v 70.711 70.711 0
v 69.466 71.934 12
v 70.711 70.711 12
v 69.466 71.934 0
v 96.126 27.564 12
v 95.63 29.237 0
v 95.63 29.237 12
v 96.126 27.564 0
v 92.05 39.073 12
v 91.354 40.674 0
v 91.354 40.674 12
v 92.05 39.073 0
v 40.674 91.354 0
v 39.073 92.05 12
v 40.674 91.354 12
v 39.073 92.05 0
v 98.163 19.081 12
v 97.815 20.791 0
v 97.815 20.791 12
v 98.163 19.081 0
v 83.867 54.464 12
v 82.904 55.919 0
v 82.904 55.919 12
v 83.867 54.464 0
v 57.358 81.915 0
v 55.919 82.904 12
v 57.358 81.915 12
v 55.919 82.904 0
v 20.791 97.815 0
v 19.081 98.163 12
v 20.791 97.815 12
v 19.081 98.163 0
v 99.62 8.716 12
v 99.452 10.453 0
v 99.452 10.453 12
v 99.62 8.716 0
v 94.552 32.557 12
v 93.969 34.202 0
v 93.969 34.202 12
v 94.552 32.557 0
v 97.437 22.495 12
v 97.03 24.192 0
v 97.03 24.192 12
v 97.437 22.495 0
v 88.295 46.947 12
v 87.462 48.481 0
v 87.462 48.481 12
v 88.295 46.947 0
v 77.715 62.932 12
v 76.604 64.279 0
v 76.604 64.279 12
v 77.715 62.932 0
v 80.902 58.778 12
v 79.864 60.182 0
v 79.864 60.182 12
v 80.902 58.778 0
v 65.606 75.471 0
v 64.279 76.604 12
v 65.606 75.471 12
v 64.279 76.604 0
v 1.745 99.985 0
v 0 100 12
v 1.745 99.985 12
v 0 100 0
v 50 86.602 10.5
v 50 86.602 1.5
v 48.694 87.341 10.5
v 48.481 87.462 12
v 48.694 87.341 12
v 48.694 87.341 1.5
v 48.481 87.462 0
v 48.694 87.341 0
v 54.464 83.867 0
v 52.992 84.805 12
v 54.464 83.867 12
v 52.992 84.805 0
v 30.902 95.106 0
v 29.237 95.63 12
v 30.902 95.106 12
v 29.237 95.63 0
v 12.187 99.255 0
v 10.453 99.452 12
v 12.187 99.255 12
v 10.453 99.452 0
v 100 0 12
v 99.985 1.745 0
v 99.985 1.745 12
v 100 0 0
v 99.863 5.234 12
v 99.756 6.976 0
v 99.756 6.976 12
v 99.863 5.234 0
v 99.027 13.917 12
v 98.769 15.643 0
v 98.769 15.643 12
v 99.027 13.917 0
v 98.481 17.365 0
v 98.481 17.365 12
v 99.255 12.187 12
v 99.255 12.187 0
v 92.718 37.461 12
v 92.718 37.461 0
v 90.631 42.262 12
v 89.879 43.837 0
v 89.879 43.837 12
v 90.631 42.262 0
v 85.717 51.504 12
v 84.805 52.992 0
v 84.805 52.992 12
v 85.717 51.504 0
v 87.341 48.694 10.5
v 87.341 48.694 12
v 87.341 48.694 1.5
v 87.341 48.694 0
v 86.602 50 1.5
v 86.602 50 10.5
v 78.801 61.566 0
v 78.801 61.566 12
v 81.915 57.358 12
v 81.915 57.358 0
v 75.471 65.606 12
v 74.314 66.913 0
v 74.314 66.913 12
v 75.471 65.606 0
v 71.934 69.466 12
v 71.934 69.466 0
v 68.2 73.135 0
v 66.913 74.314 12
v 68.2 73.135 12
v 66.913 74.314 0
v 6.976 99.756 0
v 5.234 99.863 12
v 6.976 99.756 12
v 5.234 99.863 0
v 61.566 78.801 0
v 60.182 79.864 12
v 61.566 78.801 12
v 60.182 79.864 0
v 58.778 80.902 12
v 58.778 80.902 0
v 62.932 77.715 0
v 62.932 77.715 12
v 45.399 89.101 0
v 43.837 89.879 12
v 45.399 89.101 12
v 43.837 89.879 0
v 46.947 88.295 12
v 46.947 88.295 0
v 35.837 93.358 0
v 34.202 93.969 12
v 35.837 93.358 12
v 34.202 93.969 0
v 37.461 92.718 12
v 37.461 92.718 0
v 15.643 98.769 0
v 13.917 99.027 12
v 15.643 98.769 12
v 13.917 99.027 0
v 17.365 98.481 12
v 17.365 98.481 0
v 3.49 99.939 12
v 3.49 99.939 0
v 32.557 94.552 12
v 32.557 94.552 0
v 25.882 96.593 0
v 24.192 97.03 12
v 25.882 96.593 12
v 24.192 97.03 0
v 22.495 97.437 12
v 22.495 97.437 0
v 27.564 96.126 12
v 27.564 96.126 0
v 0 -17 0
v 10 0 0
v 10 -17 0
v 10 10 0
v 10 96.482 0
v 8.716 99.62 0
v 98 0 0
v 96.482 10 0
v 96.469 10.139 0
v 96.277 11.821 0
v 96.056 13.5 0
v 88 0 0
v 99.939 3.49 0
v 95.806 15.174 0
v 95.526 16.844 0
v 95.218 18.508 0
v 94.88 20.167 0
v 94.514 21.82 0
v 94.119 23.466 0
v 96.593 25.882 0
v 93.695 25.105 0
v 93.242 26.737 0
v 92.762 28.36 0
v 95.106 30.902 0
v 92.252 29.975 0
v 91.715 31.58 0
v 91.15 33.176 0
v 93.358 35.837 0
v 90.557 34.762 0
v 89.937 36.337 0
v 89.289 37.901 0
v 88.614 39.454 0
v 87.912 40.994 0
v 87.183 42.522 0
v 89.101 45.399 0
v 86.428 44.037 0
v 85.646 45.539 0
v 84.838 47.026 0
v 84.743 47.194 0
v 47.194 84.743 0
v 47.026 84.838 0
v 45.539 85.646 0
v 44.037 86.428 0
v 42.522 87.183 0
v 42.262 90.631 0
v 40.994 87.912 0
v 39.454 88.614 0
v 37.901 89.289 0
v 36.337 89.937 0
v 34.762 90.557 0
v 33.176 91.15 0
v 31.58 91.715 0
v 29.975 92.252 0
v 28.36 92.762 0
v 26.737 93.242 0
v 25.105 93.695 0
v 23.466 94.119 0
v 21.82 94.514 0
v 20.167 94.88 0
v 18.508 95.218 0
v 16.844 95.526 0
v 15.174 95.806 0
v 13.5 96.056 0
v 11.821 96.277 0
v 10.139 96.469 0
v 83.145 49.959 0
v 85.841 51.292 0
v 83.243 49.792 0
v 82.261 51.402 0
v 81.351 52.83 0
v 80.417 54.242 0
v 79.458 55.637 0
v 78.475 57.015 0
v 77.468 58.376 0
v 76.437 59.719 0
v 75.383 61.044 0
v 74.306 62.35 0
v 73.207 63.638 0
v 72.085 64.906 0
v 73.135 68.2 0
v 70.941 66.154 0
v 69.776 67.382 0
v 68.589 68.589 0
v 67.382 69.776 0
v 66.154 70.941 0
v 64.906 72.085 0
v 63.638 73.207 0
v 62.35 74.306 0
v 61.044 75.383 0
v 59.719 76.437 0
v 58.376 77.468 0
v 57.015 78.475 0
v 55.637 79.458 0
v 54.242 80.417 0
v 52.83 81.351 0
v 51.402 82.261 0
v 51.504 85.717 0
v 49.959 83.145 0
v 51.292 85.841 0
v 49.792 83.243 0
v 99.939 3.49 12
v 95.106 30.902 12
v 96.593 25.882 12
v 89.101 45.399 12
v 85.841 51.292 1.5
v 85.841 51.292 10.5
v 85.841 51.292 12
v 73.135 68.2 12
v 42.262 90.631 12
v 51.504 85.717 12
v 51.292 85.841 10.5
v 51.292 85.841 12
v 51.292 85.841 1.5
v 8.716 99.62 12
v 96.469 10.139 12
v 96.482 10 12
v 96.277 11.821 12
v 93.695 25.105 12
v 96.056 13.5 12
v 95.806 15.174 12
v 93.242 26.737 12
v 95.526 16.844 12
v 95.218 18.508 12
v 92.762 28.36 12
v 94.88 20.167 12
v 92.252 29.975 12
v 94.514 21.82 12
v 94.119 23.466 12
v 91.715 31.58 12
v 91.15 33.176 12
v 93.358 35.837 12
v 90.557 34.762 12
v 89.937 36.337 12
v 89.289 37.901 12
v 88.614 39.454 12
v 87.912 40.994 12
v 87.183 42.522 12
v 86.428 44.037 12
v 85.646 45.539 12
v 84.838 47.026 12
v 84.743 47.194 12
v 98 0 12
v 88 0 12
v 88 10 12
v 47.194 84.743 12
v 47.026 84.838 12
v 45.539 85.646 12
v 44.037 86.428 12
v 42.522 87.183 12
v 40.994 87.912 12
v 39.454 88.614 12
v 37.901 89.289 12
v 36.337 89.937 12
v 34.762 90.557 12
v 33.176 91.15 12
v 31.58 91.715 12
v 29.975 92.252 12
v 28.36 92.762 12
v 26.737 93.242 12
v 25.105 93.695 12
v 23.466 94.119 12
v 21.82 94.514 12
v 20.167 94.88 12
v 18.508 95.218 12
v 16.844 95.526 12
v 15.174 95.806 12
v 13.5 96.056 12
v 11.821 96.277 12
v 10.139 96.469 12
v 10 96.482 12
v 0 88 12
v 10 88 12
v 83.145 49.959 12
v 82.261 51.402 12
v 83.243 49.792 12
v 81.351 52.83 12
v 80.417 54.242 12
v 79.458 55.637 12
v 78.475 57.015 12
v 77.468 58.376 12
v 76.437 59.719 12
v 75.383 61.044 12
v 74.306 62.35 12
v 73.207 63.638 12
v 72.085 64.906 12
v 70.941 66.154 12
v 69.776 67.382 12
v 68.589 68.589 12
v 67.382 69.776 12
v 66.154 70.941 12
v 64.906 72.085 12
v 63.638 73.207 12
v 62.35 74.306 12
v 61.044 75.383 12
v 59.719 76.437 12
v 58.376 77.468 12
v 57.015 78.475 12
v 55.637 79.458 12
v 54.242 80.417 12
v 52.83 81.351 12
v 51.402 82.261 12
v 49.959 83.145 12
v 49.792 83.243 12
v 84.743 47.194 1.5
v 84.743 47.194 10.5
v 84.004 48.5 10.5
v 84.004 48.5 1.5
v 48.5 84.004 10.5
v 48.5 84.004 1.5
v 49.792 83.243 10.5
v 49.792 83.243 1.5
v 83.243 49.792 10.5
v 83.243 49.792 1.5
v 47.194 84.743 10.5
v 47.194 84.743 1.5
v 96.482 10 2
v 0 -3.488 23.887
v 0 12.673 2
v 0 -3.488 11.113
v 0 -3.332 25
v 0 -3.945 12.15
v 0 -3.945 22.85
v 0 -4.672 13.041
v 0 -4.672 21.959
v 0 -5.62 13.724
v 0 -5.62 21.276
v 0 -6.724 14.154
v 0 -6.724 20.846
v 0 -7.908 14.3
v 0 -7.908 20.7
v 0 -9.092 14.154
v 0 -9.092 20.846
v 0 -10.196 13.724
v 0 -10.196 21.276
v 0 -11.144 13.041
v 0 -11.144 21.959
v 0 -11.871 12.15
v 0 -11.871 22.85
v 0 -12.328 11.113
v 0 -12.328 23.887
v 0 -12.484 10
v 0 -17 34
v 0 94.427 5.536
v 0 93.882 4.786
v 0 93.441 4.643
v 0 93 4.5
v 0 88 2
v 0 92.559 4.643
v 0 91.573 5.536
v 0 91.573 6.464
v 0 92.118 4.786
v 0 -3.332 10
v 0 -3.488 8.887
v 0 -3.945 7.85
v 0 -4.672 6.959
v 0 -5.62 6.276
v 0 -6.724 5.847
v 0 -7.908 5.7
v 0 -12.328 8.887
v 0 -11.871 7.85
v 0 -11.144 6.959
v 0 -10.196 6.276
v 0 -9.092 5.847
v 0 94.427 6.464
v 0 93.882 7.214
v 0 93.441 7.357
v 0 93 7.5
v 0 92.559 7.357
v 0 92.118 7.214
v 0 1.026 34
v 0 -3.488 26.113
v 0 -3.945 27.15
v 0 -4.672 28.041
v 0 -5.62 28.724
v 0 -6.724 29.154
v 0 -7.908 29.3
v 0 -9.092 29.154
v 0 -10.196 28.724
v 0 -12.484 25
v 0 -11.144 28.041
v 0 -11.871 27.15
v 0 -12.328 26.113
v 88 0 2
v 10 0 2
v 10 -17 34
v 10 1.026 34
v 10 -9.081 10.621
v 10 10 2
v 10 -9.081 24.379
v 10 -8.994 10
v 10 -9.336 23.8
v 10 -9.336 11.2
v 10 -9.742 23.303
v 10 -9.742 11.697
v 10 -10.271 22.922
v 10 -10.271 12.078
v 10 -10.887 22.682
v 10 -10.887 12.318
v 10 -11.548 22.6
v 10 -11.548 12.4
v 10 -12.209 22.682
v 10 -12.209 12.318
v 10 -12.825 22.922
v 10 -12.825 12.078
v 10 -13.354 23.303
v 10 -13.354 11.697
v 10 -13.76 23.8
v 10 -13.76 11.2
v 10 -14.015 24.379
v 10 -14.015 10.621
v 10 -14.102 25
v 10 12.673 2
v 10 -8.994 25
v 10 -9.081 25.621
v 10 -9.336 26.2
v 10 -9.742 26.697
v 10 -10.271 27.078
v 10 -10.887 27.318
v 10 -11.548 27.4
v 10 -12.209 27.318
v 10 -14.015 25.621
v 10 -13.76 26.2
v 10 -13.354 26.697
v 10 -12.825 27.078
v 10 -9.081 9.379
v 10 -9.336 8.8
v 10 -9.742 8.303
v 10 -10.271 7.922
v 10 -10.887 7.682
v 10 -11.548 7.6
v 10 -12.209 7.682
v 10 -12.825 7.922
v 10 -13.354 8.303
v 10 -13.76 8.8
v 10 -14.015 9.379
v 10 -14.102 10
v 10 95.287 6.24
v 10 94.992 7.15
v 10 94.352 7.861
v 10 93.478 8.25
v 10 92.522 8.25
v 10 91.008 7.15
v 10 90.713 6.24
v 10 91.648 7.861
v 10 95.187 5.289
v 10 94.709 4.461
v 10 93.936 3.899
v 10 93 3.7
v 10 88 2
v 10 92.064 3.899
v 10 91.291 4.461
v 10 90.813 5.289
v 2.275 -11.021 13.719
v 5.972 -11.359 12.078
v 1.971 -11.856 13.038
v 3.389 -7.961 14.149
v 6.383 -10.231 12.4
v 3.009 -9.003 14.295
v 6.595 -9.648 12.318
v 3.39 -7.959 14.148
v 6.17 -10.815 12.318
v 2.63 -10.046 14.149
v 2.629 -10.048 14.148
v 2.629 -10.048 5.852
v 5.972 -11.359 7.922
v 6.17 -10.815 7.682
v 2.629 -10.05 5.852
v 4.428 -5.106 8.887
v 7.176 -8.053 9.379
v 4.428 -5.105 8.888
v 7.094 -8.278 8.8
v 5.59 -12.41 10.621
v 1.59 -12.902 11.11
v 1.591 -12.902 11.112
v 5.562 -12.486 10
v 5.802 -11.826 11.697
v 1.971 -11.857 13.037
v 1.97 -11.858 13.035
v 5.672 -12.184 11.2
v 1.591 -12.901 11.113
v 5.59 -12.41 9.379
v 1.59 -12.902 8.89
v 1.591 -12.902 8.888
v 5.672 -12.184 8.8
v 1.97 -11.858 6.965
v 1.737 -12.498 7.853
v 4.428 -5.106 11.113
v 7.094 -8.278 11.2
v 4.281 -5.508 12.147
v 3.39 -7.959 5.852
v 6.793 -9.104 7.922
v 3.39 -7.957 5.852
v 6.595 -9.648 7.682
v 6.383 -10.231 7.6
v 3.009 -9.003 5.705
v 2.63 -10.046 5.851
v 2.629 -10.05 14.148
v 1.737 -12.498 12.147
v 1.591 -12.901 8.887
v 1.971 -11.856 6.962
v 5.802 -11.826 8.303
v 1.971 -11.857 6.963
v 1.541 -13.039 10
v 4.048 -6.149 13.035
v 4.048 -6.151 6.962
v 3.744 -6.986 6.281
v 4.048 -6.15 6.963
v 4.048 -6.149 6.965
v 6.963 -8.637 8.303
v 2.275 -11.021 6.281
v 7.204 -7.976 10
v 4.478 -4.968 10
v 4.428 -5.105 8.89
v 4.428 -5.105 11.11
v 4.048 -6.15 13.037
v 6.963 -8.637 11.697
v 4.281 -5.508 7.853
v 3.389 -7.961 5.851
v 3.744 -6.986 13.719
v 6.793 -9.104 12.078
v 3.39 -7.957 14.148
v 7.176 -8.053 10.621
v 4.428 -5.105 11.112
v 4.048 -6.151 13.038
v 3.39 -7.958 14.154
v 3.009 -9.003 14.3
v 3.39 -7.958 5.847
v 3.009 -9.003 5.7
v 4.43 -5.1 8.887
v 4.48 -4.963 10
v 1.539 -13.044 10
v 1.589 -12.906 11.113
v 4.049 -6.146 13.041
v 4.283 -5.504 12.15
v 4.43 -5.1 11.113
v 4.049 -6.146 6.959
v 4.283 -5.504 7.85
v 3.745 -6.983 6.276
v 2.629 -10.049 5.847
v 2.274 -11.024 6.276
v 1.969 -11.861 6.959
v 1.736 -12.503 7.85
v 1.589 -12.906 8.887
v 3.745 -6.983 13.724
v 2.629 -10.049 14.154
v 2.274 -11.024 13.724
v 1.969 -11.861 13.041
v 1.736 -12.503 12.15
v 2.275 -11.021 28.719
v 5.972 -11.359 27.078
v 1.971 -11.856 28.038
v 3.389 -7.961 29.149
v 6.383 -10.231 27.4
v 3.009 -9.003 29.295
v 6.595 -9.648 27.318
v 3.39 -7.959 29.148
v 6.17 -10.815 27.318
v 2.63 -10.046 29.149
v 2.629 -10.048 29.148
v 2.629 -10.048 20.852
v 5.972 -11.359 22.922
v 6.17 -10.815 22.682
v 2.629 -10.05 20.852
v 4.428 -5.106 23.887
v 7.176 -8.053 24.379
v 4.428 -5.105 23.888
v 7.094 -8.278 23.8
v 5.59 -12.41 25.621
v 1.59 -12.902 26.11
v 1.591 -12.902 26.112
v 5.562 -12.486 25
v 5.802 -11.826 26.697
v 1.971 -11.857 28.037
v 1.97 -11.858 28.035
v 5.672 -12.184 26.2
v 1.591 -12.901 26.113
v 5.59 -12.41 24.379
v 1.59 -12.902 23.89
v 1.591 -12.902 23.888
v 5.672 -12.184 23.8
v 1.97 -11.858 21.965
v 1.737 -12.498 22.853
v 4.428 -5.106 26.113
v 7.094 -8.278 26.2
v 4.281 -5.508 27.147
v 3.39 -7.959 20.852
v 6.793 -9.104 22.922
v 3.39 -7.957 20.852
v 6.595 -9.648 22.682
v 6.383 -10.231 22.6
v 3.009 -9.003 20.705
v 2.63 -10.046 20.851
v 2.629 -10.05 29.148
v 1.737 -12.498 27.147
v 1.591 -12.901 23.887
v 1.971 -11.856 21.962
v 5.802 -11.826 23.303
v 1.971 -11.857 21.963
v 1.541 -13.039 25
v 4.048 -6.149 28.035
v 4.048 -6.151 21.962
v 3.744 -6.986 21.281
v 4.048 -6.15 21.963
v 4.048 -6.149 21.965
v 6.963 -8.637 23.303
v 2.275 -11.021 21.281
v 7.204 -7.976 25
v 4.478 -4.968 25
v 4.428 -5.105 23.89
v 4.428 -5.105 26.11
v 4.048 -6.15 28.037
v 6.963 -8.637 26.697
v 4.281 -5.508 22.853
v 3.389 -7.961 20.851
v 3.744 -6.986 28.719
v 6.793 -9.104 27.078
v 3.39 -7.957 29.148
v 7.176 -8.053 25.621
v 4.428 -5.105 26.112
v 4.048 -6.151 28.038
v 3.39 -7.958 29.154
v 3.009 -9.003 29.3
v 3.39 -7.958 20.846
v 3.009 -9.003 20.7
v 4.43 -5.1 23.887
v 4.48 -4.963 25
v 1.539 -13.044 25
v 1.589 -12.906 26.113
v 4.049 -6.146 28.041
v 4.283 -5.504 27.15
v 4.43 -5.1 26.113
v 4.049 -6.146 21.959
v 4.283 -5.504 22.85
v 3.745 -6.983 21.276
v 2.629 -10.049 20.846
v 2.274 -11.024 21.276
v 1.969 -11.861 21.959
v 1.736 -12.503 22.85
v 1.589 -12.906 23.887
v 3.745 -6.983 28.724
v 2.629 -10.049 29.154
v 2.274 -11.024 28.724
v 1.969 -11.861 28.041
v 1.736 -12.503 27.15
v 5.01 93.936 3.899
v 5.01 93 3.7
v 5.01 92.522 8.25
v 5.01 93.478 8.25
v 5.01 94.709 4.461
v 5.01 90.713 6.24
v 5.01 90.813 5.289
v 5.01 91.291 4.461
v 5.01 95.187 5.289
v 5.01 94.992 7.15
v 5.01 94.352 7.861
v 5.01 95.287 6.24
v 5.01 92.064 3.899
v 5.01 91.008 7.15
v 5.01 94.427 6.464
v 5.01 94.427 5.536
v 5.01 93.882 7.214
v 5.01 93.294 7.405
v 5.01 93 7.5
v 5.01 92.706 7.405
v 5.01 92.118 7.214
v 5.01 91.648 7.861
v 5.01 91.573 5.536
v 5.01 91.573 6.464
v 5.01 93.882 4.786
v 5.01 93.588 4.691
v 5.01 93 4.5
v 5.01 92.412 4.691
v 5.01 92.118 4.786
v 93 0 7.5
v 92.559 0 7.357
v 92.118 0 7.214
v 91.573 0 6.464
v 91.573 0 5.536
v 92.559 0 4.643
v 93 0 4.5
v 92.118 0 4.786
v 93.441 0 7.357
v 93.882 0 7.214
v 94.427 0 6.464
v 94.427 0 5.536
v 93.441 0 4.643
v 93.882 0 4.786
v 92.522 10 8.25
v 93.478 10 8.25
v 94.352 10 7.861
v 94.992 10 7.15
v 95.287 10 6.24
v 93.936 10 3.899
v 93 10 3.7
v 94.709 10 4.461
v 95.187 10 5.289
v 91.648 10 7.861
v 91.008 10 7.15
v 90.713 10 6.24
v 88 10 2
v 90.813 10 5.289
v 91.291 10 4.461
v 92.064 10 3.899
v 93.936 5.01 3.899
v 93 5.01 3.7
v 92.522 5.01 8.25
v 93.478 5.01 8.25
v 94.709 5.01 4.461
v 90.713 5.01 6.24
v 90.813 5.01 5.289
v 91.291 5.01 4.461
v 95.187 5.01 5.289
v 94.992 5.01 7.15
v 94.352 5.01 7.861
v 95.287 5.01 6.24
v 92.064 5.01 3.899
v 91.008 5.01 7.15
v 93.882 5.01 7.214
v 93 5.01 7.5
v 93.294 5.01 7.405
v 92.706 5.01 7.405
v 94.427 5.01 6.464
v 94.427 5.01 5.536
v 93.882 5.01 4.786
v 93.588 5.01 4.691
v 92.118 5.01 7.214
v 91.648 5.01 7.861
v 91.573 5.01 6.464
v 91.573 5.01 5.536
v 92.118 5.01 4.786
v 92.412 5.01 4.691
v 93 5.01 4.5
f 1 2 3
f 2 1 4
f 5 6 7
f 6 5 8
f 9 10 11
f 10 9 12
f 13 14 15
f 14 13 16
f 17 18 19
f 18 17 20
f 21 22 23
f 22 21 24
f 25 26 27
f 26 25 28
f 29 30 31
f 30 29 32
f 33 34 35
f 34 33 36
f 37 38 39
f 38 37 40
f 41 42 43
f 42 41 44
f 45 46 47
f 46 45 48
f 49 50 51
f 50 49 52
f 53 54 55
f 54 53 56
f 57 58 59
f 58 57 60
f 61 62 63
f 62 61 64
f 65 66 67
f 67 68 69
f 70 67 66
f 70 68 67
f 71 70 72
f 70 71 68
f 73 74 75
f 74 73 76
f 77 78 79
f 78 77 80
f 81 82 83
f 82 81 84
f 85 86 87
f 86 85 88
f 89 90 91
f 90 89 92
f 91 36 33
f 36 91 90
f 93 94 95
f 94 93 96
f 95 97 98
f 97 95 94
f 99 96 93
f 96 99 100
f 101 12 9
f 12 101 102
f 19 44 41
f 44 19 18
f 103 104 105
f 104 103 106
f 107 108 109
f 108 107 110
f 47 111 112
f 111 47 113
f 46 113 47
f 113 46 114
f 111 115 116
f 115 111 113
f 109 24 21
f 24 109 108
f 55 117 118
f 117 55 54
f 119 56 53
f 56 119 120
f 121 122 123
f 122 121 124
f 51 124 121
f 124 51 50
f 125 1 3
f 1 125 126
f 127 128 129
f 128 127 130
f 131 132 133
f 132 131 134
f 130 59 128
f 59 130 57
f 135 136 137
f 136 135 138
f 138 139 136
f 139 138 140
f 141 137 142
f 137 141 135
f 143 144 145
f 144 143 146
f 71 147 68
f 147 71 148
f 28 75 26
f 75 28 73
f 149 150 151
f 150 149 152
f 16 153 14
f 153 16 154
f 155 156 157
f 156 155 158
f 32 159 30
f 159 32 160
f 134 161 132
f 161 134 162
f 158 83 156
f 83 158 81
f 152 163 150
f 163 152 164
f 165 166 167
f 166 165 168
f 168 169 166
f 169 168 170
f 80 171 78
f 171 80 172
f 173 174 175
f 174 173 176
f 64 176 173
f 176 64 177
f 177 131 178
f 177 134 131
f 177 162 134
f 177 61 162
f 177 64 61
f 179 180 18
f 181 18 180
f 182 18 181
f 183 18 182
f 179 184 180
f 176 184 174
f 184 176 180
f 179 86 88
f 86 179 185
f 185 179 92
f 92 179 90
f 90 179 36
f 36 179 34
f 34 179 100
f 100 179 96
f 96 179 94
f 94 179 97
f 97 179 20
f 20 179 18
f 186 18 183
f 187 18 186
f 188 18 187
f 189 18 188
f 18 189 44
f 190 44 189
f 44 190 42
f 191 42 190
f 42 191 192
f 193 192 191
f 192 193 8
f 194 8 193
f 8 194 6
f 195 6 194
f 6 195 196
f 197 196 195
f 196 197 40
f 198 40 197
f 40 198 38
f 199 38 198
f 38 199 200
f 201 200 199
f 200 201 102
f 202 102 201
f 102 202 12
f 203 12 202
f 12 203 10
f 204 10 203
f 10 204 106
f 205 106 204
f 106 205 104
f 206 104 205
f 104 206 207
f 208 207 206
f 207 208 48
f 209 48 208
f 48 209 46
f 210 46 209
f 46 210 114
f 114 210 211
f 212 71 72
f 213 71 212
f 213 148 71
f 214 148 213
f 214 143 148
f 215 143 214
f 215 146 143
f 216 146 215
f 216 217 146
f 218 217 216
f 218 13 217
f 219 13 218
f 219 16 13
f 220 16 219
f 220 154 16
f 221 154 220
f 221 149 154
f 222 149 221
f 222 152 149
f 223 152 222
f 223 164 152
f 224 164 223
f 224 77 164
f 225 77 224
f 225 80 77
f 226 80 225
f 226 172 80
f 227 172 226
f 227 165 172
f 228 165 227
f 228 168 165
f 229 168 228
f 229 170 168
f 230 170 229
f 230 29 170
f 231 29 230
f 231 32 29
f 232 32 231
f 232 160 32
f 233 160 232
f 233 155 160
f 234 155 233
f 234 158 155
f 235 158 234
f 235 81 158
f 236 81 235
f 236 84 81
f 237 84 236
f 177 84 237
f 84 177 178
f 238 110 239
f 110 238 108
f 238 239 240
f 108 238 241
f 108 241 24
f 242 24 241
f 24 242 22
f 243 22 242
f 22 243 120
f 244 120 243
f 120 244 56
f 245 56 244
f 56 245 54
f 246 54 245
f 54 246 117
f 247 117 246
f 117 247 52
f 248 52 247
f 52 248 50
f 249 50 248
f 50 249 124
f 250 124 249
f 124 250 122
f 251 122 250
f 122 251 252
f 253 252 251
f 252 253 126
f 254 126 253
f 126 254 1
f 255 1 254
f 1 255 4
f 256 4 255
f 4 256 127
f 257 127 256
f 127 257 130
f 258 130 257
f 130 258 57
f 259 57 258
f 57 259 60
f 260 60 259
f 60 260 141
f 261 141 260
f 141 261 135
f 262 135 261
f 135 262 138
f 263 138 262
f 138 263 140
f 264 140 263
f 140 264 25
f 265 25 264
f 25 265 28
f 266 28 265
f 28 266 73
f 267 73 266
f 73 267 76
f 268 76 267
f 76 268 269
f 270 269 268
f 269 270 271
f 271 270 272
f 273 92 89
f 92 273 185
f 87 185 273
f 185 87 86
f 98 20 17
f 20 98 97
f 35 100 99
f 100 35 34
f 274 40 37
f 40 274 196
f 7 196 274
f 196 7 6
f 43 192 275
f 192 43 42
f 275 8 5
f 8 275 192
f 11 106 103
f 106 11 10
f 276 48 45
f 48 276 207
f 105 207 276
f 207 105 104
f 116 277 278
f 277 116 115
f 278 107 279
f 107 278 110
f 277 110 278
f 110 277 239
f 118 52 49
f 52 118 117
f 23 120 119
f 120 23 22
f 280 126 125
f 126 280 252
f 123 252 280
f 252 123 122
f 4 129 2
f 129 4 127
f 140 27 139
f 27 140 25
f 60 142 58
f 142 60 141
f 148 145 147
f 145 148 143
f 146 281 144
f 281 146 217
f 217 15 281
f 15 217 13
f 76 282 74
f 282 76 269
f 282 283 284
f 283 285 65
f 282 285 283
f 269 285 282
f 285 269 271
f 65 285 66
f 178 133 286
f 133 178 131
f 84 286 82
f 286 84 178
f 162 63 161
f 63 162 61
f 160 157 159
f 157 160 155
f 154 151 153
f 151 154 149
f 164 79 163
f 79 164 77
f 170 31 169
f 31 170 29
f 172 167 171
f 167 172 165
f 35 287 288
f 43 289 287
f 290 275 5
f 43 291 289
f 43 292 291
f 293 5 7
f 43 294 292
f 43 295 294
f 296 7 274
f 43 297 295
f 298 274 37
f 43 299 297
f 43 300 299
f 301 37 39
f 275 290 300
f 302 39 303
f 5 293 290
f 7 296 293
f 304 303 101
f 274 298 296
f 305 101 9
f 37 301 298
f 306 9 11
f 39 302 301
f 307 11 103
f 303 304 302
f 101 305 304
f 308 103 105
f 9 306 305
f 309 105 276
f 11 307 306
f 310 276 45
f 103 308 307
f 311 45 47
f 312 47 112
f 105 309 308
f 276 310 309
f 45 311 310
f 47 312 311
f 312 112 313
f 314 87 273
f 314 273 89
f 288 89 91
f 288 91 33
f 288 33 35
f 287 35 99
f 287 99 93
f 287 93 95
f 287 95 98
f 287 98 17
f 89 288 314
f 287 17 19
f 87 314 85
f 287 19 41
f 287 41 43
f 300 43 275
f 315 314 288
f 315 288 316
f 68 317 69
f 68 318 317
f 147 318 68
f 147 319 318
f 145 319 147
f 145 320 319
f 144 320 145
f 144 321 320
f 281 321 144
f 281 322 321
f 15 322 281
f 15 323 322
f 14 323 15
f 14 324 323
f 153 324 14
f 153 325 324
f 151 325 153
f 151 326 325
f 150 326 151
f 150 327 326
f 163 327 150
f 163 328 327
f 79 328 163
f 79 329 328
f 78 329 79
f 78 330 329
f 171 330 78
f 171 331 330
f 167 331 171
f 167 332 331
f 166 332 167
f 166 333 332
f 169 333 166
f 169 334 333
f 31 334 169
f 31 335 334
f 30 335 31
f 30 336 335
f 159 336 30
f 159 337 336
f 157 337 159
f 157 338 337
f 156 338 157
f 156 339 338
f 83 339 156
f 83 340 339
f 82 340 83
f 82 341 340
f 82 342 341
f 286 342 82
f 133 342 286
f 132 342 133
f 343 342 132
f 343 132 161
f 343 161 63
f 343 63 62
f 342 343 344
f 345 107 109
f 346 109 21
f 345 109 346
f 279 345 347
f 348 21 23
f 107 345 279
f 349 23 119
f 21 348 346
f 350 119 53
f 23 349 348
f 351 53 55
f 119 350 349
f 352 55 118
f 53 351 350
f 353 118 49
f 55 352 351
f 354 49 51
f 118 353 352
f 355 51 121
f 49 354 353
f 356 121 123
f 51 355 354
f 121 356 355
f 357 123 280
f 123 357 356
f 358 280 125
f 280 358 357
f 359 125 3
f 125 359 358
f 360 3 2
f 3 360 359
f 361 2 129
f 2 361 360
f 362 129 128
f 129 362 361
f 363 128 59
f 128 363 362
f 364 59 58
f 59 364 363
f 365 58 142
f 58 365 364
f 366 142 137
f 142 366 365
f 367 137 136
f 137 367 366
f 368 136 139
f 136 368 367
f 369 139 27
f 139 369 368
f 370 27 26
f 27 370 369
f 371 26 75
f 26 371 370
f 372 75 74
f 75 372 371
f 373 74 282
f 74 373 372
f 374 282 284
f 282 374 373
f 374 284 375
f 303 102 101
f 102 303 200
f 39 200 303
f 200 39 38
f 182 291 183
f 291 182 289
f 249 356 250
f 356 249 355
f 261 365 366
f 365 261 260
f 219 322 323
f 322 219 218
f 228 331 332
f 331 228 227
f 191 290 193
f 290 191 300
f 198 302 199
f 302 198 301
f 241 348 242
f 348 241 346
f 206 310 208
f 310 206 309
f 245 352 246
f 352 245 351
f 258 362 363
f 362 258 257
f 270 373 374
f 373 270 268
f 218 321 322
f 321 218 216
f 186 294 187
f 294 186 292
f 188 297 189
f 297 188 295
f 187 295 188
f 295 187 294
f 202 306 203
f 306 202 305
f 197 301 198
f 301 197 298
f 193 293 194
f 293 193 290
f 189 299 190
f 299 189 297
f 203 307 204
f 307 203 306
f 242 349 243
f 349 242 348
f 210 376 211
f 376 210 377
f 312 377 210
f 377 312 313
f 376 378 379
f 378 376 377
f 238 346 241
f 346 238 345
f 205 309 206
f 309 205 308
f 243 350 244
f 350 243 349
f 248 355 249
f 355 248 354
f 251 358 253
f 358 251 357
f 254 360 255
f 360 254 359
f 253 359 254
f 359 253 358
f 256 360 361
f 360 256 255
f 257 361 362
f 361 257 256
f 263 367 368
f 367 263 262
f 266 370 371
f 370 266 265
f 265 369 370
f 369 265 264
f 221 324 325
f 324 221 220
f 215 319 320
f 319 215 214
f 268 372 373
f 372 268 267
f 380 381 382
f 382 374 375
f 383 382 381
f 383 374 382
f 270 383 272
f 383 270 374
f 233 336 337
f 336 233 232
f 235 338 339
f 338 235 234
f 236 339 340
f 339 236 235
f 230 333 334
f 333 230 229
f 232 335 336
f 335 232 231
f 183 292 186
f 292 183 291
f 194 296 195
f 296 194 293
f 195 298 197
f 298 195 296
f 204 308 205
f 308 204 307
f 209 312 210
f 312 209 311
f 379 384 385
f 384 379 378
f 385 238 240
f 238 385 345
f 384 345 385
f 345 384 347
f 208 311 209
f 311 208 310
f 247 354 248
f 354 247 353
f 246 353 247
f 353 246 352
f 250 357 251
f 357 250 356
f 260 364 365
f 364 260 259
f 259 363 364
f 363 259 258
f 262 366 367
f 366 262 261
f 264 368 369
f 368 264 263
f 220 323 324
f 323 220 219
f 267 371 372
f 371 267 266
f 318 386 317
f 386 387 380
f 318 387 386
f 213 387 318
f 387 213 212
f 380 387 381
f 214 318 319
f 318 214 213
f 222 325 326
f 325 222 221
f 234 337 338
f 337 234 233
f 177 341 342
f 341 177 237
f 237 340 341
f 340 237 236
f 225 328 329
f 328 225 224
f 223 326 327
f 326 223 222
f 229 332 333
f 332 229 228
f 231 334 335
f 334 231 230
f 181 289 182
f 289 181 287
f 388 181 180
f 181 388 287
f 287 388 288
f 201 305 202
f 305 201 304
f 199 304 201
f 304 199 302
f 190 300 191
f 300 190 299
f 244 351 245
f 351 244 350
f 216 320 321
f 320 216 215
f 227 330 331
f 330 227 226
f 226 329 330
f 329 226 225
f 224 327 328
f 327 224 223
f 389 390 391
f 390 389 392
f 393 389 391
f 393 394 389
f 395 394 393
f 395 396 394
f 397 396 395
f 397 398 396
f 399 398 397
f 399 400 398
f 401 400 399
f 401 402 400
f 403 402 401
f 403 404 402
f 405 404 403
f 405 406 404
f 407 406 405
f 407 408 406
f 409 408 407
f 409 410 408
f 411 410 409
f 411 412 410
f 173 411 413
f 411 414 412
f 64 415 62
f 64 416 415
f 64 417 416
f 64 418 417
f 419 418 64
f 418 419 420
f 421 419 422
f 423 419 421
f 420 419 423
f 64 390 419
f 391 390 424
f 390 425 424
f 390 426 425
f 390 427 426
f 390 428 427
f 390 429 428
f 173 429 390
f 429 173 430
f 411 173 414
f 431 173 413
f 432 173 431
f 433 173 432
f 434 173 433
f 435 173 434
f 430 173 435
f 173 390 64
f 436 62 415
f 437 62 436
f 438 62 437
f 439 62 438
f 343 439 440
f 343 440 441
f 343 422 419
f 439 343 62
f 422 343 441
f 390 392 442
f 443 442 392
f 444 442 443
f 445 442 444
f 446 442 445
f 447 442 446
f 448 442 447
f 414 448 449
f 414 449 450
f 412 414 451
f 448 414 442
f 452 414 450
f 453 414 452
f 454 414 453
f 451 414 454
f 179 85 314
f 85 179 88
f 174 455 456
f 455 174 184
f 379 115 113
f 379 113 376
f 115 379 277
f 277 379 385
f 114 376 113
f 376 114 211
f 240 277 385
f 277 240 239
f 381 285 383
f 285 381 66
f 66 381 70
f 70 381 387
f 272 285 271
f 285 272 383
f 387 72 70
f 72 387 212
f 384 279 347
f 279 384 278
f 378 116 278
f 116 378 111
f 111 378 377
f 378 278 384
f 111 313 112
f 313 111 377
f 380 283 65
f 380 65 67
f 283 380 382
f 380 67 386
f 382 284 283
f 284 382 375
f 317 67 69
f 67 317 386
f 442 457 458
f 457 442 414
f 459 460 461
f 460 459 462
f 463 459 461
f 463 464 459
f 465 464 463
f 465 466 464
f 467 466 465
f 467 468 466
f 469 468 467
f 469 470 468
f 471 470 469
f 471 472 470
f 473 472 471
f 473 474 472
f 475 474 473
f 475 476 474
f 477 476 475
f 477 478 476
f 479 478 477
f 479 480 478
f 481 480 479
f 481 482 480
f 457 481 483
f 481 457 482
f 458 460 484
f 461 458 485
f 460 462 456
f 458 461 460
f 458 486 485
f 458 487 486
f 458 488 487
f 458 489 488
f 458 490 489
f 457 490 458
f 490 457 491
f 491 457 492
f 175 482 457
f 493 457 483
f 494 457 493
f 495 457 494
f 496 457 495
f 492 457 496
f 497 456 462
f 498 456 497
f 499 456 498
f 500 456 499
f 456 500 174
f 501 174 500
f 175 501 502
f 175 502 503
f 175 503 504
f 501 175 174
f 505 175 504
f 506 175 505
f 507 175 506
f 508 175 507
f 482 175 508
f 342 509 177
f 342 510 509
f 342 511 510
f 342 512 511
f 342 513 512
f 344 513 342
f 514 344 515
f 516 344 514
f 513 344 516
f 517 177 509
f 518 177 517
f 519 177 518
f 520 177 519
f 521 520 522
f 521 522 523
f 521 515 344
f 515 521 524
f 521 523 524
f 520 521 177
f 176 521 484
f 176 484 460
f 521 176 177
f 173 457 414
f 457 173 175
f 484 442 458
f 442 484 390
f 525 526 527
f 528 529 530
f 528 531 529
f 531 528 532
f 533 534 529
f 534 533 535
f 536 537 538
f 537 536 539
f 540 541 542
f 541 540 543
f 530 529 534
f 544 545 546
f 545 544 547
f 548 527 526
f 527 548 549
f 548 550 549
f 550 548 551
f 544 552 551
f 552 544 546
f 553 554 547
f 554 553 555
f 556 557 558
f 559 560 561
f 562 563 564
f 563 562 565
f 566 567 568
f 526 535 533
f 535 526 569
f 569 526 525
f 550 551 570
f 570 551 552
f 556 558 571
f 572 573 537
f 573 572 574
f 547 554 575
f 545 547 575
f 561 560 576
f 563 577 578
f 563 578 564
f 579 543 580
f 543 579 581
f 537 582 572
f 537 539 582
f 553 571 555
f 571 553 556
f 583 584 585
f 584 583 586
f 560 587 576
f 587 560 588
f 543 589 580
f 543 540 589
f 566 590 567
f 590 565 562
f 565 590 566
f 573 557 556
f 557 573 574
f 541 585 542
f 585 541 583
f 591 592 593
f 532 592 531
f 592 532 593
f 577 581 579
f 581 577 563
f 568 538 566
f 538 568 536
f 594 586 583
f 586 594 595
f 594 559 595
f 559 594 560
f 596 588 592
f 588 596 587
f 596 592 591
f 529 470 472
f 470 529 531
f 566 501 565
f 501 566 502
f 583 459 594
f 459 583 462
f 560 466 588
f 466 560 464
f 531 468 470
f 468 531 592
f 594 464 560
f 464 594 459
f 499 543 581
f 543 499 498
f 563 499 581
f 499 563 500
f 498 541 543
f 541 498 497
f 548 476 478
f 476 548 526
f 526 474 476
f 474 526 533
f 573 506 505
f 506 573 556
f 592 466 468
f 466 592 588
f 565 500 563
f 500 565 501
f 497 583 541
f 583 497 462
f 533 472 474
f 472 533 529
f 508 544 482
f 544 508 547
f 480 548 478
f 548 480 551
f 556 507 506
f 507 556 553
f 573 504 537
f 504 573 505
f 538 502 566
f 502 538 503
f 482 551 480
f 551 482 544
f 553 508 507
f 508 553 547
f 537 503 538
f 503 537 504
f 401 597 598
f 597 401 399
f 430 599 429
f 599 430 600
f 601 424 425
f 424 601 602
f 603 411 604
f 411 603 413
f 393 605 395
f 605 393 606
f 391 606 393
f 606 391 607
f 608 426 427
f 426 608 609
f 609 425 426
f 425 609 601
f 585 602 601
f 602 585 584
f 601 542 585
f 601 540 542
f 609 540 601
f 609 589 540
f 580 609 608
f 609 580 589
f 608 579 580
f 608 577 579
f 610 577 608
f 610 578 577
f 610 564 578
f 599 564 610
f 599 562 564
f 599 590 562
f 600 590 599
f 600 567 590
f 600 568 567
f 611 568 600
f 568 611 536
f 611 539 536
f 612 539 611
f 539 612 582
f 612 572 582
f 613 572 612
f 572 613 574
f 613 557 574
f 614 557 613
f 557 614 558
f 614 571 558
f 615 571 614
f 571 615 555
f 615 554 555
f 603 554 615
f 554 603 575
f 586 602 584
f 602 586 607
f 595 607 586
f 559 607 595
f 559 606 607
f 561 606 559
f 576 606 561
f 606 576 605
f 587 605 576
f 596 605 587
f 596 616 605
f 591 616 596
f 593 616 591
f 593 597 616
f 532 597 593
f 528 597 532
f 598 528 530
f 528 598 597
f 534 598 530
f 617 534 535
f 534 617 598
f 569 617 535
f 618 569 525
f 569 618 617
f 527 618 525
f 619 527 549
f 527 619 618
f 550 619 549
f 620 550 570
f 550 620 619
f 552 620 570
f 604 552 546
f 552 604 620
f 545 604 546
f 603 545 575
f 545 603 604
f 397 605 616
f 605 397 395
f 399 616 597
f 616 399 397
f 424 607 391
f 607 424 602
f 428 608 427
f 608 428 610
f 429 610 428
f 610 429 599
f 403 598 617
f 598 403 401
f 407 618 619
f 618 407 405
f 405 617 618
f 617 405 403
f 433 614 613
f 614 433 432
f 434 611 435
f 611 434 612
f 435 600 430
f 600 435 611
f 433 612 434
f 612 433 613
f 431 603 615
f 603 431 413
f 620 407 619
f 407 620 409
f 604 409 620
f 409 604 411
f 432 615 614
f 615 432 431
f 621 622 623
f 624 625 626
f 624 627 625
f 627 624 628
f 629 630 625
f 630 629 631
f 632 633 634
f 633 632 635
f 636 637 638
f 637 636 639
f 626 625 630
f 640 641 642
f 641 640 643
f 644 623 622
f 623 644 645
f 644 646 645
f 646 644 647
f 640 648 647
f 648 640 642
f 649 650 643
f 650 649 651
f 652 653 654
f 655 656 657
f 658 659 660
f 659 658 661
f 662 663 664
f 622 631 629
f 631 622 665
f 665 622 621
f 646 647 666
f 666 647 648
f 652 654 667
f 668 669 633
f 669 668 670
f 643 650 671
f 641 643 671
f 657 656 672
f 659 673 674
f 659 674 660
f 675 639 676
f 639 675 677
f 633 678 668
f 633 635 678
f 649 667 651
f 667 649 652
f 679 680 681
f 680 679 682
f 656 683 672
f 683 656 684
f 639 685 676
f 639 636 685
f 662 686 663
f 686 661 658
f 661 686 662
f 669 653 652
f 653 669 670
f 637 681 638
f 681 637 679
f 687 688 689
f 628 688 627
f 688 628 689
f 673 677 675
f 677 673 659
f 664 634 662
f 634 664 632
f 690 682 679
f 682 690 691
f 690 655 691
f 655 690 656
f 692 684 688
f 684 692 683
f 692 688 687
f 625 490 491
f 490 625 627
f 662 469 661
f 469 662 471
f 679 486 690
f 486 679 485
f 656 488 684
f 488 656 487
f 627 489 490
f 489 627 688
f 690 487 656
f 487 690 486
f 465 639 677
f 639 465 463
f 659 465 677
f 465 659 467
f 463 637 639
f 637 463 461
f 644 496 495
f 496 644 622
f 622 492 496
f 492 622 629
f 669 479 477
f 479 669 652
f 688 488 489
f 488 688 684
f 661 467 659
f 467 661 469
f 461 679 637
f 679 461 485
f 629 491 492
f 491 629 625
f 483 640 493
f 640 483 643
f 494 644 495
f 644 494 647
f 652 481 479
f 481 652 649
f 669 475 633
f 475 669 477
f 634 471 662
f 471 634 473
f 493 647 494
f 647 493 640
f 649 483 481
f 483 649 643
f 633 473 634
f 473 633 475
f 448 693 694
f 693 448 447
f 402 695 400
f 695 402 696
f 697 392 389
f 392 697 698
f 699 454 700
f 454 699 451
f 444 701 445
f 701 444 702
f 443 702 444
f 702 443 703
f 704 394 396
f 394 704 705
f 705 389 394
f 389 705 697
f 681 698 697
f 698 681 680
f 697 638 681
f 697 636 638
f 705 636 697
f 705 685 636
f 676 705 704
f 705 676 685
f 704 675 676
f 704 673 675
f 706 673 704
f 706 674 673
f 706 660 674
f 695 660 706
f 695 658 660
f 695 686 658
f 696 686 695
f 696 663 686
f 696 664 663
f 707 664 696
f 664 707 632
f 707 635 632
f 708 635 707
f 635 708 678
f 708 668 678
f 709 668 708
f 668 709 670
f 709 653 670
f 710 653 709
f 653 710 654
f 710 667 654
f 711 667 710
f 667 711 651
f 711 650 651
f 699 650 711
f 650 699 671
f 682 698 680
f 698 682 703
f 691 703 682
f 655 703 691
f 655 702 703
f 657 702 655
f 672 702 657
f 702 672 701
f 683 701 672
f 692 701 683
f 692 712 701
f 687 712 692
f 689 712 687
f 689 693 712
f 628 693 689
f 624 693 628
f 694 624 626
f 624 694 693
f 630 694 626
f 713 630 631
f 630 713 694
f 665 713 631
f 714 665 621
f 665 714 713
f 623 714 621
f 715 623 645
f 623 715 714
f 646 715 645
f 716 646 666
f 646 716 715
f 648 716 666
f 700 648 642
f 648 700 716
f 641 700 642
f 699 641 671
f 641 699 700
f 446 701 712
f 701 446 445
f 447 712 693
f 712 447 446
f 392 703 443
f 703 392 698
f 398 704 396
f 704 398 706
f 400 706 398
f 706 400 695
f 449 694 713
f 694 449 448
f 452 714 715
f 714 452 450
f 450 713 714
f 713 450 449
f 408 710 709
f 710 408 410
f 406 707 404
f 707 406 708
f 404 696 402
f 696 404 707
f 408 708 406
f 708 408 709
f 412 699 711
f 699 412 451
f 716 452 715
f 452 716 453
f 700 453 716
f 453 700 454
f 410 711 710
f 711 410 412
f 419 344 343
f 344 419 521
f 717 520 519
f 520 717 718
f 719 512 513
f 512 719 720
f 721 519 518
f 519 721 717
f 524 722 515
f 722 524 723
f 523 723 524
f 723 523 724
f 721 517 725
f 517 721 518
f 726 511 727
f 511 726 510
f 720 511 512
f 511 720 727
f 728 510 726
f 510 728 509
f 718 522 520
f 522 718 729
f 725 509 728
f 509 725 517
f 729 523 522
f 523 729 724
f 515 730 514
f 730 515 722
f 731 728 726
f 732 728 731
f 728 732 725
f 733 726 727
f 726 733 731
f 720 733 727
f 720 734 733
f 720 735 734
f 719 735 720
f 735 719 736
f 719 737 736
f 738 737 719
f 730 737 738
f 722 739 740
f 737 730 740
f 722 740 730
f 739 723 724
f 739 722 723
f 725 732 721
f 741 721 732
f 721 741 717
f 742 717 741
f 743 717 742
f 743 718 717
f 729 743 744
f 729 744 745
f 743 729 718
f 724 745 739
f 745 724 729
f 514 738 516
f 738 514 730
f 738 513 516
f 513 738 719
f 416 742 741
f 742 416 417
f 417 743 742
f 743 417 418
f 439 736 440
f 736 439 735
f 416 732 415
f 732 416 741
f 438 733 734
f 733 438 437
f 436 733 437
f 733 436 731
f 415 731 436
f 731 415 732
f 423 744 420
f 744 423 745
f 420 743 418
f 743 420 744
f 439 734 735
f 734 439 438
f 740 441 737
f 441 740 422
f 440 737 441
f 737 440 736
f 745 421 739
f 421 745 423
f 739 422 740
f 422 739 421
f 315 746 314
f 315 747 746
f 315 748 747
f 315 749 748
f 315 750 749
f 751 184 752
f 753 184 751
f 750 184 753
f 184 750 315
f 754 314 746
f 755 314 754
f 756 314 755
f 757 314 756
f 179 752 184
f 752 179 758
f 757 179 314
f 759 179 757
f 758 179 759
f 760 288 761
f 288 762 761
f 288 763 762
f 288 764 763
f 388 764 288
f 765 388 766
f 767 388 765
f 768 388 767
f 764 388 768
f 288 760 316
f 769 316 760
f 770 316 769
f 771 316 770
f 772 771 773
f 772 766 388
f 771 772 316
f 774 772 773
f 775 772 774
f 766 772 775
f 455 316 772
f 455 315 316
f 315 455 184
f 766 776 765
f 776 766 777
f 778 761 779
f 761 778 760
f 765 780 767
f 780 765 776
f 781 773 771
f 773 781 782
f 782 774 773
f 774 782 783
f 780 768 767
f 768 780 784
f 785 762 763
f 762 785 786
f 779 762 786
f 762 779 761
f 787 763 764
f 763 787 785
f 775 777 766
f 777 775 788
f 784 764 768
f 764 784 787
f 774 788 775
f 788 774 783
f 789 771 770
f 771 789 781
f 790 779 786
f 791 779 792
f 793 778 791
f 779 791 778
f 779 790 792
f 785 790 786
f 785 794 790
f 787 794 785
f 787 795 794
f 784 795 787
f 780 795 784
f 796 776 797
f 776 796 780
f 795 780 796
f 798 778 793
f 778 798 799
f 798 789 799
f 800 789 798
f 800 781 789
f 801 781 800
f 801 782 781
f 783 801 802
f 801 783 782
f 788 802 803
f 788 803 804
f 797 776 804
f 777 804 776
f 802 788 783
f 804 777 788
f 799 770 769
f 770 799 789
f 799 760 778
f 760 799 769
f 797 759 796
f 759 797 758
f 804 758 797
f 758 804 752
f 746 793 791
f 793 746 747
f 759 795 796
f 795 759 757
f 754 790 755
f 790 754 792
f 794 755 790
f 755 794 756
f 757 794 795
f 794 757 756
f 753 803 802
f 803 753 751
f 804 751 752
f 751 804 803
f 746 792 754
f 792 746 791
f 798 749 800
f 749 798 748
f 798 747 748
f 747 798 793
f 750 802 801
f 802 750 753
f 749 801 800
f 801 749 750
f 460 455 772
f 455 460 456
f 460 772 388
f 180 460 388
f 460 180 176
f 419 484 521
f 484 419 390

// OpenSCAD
$fs=1;
$fa=1;
//arc
arc_t=12;
num8slot=4.8;
ep=0.01;
module num8counter()
//countersink shape
{
    hh=3.6;
    rr=8.6/2;
    foot_t=10;
    translate([0,0,-hh])
    {
        cylinder(r1=num8slot/2,r2=rr,h=hh,$fn=24);
        translate([0,0,-foot_t])cylinder(r1=num8slot/2,r2=num8slot/2,h=hh+foot_t,$fn=24);
        translate([0,0,hh-ep])cylinder(r=rr,h=foot_t,$fn=24);
    }
}
difference()
{
    translate([0,0,arc_t/2])intersection()
    {
        difference()
        {
            cylinder(r=100,h=arc_t,center=true);
            cylinder(r=97,h=arc_t+1,center=true);
        }
        translate([100,100,0])cube([200,200,13],center=true);
    }
    rotate([0,0,30])translate([55,0,0])cube([110,3,3],center=true);
    rotate([0,0,60])translate([55,0,0])cube([110,3,3],center=true);
    rotate([0,0,30])translate([55,0,arc_t])cube([110,3,3],center=true);
    rotate([0,0,60])translate([55,0,arc_t])cube([110,3,3],center=true);
}
//spines
translate([49.5,5,1])cube([99,10,2],center=true);
translate([5,49.5,1])cube([10,99,2],center=true);

translate([0,-17,0])difference()
{
    intersection()
    {
        union()
        {
            translate([5,9,17])cube([10,18,34],center=true);
            translate([5,15,16])rotate([20,0,0])cube([10,18,38],center=true);
        }
        translate([0,0,17])cube([100,100,34],center=true);
    }
    translate([3,8,10])rotate([-20,-90,0])num8counter();
    translate([3,8,25])rotate([-20,-90,0])num8counter();
}

//teflon feeder ends
difference()
{
    translate([5,100-5-2,arc_t/2])cube([10,10,arc_t],center=true);  
    translate([2.5+5+ep,100-5-2,arc_t/2])rotate([0,90,0])cylinder(r=4.6/2,h=5,center=true);
    translate([0,100-5-2,arc_t/2])rotate([0,90,0])cylinder(r=3/2,h=30,center=true);
}
mirror([0,1,0])rotate([0,0,-90])difference()
{
    translate([5,100-5-2,arc_t/2])cube([10,10,arc_t],center=true);  
    translate([2.5+5+ep,100-5-2,arc_t/2])rotate([0,90,0])cylinder(r=4.6/2,h=5,center=true);
    translate([0,100-5-2,arc_t/2])rotate([0,90,0])cylinder(r=3/2,h=30,center=true);
}
